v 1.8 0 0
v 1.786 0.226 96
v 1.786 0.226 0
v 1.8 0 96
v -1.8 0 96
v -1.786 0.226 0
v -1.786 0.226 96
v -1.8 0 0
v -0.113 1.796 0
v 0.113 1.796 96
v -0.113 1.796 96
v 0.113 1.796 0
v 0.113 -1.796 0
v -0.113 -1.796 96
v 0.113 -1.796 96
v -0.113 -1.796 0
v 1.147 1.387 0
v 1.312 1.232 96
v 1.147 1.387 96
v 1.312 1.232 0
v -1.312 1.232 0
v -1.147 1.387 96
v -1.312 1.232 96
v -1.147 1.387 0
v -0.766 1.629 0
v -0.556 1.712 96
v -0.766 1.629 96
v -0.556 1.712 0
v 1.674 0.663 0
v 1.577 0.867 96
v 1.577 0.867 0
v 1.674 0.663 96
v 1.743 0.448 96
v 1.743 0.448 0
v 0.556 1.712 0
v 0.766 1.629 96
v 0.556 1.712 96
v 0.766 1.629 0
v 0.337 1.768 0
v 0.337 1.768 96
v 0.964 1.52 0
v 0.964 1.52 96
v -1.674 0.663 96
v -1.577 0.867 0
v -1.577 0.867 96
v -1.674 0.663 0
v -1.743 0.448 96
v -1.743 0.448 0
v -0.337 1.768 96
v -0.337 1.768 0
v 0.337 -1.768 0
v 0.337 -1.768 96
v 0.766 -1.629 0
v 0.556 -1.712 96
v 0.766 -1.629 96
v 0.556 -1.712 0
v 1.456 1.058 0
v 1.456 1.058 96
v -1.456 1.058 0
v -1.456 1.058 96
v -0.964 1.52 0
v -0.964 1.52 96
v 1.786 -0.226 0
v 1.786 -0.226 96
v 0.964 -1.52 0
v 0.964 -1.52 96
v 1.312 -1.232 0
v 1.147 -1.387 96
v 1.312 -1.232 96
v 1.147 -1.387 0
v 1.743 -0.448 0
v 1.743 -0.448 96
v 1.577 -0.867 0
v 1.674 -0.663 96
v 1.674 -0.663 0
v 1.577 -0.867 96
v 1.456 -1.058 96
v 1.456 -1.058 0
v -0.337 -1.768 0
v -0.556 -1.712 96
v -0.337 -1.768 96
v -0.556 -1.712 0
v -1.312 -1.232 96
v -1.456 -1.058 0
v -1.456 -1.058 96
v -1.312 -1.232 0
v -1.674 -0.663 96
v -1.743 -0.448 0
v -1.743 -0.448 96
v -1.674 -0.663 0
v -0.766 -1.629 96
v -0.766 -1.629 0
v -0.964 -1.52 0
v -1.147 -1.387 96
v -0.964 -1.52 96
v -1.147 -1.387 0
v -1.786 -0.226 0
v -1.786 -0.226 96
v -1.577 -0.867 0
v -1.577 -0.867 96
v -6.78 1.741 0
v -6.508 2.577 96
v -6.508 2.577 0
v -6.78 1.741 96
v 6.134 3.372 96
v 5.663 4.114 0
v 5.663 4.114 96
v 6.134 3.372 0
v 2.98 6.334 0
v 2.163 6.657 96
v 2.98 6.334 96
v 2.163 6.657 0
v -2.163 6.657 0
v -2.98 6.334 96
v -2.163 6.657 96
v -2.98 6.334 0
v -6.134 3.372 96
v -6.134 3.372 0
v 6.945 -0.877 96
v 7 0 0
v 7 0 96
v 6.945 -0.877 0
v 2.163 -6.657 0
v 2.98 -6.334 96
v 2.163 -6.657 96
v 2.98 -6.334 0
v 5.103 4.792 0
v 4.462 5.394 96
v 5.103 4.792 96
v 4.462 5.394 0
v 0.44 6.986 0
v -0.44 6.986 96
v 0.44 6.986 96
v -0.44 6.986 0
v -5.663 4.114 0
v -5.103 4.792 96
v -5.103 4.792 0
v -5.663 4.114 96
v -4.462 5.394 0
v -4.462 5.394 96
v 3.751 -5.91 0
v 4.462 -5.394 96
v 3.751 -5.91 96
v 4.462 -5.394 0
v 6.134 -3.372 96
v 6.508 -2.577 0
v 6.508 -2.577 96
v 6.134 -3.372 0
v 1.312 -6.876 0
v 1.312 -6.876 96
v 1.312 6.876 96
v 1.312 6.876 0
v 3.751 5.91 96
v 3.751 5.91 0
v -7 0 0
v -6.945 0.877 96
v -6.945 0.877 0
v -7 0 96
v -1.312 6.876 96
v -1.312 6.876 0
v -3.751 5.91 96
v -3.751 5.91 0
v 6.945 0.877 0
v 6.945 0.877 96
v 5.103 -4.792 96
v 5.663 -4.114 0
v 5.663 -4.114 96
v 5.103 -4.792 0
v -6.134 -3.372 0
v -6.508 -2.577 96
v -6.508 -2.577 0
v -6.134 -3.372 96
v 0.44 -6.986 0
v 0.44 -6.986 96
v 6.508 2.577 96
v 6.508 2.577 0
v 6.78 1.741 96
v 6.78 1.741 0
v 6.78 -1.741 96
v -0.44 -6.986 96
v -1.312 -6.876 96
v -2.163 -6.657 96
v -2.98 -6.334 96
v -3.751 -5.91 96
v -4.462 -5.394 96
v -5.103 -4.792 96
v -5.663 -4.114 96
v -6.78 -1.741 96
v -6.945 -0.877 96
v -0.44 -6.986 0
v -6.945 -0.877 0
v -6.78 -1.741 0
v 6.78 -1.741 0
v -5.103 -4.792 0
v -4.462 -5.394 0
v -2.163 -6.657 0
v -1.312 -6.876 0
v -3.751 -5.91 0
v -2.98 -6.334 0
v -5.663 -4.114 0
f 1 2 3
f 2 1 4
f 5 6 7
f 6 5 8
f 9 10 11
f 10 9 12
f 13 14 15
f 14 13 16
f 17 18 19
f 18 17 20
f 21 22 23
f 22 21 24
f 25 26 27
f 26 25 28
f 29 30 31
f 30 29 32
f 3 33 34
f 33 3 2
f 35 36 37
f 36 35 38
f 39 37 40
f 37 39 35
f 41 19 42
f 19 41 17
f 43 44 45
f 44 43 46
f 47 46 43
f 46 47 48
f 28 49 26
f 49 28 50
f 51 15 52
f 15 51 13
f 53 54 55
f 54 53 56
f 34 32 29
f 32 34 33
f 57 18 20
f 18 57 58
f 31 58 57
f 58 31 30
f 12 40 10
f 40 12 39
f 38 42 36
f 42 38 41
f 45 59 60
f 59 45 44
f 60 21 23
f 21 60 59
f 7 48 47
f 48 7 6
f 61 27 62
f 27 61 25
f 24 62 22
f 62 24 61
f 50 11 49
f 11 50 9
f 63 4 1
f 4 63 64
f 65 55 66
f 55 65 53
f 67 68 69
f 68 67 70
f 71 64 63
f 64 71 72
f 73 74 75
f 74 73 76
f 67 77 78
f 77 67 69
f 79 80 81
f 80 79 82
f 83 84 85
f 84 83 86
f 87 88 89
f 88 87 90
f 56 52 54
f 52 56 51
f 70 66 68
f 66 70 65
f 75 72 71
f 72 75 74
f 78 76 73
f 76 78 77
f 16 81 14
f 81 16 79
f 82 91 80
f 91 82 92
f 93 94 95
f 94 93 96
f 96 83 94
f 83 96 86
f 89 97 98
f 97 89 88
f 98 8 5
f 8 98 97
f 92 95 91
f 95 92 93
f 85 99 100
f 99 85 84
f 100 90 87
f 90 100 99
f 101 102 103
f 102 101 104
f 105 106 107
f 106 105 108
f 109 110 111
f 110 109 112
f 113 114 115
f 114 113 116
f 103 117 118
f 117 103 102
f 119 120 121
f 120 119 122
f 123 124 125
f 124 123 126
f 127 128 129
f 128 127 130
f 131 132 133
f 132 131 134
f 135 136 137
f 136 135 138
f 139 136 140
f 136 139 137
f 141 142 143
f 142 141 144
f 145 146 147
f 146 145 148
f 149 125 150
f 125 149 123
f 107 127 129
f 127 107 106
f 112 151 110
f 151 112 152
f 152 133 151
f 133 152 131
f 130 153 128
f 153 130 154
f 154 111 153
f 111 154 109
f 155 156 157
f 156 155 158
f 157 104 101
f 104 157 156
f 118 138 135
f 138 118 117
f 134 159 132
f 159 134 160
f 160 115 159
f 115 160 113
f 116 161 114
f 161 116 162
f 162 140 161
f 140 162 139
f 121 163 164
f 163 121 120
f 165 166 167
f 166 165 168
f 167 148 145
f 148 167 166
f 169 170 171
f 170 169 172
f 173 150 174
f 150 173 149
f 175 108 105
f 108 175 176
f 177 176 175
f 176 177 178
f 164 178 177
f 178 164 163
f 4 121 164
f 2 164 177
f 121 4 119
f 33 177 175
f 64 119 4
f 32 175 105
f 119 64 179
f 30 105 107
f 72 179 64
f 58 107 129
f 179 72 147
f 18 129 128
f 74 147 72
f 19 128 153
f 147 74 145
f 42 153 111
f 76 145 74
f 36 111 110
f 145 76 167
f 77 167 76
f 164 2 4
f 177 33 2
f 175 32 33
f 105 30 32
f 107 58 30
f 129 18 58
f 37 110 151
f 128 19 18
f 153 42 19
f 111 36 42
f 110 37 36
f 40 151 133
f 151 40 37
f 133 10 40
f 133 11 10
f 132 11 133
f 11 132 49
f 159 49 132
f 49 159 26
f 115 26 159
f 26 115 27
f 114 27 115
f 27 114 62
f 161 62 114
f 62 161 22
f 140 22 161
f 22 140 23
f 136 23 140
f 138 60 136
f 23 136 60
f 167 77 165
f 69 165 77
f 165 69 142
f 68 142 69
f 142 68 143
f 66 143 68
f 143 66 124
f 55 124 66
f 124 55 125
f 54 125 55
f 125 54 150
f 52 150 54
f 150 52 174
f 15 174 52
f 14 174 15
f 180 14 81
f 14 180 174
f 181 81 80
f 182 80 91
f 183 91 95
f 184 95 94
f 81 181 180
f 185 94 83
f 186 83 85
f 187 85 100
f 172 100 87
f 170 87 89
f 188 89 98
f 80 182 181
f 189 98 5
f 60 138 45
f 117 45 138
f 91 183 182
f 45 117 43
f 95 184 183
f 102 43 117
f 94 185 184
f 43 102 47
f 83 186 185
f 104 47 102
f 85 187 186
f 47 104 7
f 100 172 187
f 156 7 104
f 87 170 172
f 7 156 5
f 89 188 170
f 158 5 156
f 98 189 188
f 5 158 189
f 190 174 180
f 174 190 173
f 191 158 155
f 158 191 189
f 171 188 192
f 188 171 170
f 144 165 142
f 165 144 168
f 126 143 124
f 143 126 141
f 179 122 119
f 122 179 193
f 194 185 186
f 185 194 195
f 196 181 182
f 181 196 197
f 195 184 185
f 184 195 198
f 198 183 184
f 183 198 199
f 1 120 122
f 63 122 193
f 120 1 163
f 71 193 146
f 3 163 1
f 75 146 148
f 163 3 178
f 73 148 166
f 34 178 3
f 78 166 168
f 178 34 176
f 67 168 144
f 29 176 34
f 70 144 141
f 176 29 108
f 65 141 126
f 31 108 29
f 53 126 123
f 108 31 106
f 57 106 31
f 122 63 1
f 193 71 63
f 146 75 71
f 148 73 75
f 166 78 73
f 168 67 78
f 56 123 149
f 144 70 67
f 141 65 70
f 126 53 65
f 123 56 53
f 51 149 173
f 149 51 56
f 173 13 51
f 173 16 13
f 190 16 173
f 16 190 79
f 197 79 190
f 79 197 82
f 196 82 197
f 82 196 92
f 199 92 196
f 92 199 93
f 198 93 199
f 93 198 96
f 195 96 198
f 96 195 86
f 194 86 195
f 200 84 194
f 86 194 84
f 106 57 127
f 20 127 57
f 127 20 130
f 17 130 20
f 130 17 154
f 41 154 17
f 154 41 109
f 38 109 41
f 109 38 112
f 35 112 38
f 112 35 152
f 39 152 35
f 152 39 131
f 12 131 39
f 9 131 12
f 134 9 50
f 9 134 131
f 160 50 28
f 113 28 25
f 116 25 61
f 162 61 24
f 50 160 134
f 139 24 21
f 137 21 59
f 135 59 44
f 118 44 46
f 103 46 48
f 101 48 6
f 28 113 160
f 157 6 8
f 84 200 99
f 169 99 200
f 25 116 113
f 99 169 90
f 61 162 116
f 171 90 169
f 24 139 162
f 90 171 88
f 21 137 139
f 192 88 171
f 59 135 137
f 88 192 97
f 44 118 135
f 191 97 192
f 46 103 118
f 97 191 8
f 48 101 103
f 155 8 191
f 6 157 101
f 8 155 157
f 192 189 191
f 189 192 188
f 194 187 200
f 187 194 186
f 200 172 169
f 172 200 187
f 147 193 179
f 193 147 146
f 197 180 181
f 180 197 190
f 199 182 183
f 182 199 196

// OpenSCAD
$fn = 50;


difference() {
	union() {
		cylinder(h = 96, r = 7.0000000000);
	}
	union() {
		translate(v = [0, 0, -100]) {
			cylinder(h = 200, r = 1.8000000000);
		}
		translate(v = [0, 0, -100]) {
			cylinder(h = 200, r = 1.8000000000);
		}
	}
}
